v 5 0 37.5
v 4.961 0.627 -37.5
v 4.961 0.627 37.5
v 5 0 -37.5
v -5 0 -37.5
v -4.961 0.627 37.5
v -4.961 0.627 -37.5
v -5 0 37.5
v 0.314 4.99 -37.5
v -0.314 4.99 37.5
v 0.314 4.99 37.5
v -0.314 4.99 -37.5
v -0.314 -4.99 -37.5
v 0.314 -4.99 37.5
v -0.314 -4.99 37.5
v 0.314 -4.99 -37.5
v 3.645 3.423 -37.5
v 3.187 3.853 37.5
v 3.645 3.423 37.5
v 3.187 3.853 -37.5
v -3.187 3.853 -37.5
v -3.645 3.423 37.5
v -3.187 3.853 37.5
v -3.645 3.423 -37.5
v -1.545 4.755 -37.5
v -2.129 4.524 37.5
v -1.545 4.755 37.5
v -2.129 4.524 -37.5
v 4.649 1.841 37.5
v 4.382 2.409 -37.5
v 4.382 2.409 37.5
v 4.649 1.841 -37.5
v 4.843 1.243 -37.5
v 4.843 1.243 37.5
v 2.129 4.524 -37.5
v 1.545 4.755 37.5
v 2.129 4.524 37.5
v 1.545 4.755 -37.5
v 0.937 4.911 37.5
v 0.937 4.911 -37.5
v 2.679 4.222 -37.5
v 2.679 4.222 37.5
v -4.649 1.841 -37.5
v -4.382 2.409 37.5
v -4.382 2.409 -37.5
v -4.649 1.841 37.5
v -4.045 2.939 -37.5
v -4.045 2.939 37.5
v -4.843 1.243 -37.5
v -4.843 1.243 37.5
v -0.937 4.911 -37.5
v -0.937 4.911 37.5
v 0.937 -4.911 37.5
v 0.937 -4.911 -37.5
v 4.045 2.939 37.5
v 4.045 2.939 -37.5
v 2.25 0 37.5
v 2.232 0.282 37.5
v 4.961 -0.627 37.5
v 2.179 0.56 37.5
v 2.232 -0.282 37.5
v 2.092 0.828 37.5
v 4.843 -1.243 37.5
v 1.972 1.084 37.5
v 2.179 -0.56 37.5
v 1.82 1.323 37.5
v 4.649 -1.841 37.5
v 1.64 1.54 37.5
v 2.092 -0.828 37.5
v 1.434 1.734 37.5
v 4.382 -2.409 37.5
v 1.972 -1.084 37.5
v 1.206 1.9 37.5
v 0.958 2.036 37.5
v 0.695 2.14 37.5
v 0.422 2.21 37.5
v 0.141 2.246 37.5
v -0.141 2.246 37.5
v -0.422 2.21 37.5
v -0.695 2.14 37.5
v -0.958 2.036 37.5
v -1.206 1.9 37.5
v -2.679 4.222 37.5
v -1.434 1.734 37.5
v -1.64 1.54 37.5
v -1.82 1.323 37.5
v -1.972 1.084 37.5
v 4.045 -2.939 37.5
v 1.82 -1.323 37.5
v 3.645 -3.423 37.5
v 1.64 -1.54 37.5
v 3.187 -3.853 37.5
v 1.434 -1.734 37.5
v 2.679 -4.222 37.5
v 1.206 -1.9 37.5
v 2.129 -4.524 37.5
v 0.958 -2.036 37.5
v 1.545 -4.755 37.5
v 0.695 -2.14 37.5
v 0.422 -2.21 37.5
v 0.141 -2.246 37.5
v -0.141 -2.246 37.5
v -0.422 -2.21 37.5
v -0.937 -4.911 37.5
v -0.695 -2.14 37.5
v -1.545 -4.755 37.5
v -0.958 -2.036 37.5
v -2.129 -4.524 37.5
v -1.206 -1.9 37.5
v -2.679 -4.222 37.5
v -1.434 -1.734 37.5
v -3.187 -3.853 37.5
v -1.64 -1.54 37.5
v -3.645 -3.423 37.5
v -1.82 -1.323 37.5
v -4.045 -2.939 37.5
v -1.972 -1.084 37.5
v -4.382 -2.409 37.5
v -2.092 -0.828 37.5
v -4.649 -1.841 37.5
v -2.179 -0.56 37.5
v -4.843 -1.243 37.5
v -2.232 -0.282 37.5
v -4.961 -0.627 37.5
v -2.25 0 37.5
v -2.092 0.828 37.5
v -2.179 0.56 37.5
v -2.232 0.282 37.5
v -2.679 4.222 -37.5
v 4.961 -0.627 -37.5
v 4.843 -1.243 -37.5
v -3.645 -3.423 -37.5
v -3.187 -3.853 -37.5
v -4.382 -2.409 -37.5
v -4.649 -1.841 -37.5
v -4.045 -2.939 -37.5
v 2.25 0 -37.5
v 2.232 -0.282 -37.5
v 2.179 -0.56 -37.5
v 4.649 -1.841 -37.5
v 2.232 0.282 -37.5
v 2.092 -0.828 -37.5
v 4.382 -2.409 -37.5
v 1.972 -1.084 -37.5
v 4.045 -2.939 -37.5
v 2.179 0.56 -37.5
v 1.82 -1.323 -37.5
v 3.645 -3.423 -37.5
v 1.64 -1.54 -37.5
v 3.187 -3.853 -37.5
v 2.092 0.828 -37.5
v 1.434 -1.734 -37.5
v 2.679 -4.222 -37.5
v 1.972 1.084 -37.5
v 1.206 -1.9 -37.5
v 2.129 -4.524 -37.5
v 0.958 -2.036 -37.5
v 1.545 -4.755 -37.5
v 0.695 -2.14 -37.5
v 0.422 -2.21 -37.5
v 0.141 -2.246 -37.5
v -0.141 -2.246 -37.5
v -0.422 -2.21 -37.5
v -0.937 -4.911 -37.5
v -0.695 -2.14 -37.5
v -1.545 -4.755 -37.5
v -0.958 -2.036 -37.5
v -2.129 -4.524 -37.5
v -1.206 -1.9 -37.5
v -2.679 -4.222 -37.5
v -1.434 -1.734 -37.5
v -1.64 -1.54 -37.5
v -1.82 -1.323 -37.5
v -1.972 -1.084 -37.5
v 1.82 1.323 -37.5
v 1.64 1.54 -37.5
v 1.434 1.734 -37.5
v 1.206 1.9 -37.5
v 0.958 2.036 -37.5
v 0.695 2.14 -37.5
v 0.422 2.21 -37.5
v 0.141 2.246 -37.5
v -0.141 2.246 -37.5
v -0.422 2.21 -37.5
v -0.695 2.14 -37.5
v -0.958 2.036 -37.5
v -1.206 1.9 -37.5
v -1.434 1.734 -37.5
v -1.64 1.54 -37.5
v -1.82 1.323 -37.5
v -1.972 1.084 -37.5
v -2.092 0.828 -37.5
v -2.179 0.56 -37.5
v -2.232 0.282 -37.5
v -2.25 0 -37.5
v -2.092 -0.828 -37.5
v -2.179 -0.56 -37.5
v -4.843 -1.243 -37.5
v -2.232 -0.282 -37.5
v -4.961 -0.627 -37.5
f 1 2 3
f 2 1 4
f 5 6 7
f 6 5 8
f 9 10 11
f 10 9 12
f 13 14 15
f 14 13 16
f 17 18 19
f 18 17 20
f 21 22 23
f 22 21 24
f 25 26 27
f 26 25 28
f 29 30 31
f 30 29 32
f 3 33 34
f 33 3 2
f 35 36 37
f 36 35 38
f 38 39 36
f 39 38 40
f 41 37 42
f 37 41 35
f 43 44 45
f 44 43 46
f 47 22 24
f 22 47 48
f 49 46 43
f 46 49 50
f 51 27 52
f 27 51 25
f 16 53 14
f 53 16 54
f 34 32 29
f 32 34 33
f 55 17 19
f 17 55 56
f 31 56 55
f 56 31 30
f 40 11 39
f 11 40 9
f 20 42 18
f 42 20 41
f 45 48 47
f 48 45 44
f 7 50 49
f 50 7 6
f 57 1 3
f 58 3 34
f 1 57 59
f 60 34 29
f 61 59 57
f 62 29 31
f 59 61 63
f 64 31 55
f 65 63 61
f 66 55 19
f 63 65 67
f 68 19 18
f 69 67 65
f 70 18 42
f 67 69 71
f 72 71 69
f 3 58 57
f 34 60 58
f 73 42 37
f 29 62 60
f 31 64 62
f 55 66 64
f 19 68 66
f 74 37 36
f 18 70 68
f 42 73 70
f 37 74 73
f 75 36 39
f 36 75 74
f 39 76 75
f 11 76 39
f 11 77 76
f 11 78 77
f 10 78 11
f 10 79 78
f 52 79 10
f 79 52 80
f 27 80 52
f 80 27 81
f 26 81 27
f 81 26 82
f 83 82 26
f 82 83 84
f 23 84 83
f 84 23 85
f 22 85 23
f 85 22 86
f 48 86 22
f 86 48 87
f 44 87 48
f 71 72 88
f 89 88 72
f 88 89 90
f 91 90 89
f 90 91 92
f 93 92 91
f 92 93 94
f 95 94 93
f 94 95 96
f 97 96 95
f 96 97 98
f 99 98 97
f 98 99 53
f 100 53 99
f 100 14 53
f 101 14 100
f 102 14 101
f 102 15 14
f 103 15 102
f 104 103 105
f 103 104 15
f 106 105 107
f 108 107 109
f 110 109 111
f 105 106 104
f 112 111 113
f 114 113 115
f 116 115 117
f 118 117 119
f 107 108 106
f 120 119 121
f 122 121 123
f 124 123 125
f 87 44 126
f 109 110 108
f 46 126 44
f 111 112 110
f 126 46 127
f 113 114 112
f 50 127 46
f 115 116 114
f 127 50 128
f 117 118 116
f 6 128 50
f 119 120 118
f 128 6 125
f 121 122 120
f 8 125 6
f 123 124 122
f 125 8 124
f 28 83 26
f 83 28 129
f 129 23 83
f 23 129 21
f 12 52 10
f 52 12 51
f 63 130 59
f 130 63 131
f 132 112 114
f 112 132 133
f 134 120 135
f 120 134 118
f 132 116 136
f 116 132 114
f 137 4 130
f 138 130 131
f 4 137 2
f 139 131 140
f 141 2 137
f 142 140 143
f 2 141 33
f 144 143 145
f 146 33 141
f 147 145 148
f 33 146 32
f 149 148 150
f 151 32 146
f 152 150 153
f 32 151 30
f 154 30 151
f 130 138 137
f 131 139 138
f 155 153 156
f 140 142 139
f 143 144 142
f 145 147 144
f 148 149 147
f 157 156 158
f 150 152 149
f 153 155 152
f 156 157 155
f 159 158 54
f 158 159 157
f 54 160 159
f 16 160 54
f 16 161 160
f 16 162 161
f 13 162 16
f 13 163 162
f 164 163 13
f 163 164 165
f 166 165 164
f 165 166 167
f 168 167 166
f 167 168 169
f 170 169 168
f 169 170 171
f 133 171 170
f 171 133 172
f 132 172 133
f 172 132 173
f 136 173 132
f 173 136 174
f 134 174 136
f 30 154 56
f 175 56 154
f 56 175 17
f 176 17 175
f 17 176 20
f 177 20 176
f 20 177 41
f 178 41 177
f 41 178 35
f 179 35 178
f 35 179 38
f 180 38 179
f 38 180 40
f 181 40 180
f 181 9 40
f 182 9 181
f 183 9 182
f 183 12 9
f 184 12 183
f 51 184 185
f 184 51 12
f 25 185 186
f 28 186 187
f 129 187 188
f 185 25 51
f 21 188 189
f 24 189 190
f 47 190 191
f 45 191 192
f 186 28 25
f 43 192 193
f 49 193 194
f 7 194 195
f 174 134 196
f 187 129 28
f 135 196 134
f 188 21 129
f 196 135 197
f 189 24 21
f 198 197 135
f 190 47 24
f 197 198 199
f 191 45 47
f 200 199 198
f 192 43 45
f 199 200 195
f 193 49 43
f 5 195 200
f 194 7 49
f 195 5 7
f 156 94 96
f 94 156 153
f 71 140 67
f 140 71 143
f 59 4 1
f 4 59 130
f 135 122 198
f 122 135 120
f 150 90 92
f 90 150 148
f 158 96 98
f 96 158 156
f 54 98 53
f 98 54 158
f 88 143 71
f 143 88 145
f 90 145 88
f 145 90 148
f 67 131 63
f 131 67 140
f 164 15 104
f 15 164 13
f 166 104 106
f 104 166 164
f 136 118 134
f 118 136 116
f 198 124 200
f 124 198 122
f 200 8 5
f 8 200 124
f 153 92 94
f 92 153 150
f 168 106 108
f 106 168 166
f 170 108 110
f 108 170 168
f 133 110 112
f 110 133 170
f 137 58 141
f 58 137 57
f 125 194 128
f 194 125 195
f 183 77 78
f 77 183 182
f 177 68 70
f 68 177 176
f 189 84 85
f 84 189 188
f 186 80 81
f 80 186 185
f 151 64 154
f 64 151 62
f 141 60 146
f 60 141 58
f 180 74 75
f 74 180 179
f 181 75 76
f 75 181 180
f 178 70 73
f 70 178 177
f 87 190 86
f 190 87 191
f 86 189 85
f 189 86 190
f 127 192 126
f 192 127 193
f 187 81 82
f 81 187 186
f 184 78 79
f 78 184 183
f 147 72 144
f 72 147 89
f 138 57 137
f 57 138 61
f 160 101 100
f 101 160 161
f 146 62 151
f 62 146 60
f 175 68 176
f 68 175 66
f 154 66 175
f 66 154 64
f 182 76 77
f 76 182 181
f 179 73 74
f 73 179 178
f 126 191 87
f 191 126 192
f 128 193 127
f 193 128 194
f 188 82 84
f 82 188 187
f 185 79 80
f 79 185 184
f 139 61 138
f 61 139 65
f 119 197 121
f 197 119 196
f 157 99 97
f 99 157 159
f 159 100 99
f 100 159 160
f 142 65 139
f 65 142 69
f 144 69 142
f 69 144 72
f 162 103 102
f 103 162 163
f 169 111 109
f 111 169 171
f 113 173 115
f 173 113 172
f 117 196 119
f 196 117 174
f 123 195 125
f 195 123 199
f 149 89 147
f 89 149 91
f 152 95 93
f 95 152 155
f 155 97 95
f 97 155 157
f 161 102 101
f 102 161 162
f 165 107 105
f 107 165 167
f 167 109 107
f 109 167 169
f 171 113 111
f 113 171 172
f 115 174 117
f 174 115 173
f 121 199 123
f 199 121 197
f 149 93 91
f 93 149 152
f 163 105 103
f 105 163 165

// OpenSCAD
$fn = 50;


difference() {
	union() {
		translate(v = [0, 0, -37.5000000000]) {
			cylinder(h = 75, r = 5.0000000000);
		}
	}
	union() {
		translate(v = [0, 0, -100.0000000000]) {
			cylinder(h = 200, r = 2.2500000000);
		}
	}
}
